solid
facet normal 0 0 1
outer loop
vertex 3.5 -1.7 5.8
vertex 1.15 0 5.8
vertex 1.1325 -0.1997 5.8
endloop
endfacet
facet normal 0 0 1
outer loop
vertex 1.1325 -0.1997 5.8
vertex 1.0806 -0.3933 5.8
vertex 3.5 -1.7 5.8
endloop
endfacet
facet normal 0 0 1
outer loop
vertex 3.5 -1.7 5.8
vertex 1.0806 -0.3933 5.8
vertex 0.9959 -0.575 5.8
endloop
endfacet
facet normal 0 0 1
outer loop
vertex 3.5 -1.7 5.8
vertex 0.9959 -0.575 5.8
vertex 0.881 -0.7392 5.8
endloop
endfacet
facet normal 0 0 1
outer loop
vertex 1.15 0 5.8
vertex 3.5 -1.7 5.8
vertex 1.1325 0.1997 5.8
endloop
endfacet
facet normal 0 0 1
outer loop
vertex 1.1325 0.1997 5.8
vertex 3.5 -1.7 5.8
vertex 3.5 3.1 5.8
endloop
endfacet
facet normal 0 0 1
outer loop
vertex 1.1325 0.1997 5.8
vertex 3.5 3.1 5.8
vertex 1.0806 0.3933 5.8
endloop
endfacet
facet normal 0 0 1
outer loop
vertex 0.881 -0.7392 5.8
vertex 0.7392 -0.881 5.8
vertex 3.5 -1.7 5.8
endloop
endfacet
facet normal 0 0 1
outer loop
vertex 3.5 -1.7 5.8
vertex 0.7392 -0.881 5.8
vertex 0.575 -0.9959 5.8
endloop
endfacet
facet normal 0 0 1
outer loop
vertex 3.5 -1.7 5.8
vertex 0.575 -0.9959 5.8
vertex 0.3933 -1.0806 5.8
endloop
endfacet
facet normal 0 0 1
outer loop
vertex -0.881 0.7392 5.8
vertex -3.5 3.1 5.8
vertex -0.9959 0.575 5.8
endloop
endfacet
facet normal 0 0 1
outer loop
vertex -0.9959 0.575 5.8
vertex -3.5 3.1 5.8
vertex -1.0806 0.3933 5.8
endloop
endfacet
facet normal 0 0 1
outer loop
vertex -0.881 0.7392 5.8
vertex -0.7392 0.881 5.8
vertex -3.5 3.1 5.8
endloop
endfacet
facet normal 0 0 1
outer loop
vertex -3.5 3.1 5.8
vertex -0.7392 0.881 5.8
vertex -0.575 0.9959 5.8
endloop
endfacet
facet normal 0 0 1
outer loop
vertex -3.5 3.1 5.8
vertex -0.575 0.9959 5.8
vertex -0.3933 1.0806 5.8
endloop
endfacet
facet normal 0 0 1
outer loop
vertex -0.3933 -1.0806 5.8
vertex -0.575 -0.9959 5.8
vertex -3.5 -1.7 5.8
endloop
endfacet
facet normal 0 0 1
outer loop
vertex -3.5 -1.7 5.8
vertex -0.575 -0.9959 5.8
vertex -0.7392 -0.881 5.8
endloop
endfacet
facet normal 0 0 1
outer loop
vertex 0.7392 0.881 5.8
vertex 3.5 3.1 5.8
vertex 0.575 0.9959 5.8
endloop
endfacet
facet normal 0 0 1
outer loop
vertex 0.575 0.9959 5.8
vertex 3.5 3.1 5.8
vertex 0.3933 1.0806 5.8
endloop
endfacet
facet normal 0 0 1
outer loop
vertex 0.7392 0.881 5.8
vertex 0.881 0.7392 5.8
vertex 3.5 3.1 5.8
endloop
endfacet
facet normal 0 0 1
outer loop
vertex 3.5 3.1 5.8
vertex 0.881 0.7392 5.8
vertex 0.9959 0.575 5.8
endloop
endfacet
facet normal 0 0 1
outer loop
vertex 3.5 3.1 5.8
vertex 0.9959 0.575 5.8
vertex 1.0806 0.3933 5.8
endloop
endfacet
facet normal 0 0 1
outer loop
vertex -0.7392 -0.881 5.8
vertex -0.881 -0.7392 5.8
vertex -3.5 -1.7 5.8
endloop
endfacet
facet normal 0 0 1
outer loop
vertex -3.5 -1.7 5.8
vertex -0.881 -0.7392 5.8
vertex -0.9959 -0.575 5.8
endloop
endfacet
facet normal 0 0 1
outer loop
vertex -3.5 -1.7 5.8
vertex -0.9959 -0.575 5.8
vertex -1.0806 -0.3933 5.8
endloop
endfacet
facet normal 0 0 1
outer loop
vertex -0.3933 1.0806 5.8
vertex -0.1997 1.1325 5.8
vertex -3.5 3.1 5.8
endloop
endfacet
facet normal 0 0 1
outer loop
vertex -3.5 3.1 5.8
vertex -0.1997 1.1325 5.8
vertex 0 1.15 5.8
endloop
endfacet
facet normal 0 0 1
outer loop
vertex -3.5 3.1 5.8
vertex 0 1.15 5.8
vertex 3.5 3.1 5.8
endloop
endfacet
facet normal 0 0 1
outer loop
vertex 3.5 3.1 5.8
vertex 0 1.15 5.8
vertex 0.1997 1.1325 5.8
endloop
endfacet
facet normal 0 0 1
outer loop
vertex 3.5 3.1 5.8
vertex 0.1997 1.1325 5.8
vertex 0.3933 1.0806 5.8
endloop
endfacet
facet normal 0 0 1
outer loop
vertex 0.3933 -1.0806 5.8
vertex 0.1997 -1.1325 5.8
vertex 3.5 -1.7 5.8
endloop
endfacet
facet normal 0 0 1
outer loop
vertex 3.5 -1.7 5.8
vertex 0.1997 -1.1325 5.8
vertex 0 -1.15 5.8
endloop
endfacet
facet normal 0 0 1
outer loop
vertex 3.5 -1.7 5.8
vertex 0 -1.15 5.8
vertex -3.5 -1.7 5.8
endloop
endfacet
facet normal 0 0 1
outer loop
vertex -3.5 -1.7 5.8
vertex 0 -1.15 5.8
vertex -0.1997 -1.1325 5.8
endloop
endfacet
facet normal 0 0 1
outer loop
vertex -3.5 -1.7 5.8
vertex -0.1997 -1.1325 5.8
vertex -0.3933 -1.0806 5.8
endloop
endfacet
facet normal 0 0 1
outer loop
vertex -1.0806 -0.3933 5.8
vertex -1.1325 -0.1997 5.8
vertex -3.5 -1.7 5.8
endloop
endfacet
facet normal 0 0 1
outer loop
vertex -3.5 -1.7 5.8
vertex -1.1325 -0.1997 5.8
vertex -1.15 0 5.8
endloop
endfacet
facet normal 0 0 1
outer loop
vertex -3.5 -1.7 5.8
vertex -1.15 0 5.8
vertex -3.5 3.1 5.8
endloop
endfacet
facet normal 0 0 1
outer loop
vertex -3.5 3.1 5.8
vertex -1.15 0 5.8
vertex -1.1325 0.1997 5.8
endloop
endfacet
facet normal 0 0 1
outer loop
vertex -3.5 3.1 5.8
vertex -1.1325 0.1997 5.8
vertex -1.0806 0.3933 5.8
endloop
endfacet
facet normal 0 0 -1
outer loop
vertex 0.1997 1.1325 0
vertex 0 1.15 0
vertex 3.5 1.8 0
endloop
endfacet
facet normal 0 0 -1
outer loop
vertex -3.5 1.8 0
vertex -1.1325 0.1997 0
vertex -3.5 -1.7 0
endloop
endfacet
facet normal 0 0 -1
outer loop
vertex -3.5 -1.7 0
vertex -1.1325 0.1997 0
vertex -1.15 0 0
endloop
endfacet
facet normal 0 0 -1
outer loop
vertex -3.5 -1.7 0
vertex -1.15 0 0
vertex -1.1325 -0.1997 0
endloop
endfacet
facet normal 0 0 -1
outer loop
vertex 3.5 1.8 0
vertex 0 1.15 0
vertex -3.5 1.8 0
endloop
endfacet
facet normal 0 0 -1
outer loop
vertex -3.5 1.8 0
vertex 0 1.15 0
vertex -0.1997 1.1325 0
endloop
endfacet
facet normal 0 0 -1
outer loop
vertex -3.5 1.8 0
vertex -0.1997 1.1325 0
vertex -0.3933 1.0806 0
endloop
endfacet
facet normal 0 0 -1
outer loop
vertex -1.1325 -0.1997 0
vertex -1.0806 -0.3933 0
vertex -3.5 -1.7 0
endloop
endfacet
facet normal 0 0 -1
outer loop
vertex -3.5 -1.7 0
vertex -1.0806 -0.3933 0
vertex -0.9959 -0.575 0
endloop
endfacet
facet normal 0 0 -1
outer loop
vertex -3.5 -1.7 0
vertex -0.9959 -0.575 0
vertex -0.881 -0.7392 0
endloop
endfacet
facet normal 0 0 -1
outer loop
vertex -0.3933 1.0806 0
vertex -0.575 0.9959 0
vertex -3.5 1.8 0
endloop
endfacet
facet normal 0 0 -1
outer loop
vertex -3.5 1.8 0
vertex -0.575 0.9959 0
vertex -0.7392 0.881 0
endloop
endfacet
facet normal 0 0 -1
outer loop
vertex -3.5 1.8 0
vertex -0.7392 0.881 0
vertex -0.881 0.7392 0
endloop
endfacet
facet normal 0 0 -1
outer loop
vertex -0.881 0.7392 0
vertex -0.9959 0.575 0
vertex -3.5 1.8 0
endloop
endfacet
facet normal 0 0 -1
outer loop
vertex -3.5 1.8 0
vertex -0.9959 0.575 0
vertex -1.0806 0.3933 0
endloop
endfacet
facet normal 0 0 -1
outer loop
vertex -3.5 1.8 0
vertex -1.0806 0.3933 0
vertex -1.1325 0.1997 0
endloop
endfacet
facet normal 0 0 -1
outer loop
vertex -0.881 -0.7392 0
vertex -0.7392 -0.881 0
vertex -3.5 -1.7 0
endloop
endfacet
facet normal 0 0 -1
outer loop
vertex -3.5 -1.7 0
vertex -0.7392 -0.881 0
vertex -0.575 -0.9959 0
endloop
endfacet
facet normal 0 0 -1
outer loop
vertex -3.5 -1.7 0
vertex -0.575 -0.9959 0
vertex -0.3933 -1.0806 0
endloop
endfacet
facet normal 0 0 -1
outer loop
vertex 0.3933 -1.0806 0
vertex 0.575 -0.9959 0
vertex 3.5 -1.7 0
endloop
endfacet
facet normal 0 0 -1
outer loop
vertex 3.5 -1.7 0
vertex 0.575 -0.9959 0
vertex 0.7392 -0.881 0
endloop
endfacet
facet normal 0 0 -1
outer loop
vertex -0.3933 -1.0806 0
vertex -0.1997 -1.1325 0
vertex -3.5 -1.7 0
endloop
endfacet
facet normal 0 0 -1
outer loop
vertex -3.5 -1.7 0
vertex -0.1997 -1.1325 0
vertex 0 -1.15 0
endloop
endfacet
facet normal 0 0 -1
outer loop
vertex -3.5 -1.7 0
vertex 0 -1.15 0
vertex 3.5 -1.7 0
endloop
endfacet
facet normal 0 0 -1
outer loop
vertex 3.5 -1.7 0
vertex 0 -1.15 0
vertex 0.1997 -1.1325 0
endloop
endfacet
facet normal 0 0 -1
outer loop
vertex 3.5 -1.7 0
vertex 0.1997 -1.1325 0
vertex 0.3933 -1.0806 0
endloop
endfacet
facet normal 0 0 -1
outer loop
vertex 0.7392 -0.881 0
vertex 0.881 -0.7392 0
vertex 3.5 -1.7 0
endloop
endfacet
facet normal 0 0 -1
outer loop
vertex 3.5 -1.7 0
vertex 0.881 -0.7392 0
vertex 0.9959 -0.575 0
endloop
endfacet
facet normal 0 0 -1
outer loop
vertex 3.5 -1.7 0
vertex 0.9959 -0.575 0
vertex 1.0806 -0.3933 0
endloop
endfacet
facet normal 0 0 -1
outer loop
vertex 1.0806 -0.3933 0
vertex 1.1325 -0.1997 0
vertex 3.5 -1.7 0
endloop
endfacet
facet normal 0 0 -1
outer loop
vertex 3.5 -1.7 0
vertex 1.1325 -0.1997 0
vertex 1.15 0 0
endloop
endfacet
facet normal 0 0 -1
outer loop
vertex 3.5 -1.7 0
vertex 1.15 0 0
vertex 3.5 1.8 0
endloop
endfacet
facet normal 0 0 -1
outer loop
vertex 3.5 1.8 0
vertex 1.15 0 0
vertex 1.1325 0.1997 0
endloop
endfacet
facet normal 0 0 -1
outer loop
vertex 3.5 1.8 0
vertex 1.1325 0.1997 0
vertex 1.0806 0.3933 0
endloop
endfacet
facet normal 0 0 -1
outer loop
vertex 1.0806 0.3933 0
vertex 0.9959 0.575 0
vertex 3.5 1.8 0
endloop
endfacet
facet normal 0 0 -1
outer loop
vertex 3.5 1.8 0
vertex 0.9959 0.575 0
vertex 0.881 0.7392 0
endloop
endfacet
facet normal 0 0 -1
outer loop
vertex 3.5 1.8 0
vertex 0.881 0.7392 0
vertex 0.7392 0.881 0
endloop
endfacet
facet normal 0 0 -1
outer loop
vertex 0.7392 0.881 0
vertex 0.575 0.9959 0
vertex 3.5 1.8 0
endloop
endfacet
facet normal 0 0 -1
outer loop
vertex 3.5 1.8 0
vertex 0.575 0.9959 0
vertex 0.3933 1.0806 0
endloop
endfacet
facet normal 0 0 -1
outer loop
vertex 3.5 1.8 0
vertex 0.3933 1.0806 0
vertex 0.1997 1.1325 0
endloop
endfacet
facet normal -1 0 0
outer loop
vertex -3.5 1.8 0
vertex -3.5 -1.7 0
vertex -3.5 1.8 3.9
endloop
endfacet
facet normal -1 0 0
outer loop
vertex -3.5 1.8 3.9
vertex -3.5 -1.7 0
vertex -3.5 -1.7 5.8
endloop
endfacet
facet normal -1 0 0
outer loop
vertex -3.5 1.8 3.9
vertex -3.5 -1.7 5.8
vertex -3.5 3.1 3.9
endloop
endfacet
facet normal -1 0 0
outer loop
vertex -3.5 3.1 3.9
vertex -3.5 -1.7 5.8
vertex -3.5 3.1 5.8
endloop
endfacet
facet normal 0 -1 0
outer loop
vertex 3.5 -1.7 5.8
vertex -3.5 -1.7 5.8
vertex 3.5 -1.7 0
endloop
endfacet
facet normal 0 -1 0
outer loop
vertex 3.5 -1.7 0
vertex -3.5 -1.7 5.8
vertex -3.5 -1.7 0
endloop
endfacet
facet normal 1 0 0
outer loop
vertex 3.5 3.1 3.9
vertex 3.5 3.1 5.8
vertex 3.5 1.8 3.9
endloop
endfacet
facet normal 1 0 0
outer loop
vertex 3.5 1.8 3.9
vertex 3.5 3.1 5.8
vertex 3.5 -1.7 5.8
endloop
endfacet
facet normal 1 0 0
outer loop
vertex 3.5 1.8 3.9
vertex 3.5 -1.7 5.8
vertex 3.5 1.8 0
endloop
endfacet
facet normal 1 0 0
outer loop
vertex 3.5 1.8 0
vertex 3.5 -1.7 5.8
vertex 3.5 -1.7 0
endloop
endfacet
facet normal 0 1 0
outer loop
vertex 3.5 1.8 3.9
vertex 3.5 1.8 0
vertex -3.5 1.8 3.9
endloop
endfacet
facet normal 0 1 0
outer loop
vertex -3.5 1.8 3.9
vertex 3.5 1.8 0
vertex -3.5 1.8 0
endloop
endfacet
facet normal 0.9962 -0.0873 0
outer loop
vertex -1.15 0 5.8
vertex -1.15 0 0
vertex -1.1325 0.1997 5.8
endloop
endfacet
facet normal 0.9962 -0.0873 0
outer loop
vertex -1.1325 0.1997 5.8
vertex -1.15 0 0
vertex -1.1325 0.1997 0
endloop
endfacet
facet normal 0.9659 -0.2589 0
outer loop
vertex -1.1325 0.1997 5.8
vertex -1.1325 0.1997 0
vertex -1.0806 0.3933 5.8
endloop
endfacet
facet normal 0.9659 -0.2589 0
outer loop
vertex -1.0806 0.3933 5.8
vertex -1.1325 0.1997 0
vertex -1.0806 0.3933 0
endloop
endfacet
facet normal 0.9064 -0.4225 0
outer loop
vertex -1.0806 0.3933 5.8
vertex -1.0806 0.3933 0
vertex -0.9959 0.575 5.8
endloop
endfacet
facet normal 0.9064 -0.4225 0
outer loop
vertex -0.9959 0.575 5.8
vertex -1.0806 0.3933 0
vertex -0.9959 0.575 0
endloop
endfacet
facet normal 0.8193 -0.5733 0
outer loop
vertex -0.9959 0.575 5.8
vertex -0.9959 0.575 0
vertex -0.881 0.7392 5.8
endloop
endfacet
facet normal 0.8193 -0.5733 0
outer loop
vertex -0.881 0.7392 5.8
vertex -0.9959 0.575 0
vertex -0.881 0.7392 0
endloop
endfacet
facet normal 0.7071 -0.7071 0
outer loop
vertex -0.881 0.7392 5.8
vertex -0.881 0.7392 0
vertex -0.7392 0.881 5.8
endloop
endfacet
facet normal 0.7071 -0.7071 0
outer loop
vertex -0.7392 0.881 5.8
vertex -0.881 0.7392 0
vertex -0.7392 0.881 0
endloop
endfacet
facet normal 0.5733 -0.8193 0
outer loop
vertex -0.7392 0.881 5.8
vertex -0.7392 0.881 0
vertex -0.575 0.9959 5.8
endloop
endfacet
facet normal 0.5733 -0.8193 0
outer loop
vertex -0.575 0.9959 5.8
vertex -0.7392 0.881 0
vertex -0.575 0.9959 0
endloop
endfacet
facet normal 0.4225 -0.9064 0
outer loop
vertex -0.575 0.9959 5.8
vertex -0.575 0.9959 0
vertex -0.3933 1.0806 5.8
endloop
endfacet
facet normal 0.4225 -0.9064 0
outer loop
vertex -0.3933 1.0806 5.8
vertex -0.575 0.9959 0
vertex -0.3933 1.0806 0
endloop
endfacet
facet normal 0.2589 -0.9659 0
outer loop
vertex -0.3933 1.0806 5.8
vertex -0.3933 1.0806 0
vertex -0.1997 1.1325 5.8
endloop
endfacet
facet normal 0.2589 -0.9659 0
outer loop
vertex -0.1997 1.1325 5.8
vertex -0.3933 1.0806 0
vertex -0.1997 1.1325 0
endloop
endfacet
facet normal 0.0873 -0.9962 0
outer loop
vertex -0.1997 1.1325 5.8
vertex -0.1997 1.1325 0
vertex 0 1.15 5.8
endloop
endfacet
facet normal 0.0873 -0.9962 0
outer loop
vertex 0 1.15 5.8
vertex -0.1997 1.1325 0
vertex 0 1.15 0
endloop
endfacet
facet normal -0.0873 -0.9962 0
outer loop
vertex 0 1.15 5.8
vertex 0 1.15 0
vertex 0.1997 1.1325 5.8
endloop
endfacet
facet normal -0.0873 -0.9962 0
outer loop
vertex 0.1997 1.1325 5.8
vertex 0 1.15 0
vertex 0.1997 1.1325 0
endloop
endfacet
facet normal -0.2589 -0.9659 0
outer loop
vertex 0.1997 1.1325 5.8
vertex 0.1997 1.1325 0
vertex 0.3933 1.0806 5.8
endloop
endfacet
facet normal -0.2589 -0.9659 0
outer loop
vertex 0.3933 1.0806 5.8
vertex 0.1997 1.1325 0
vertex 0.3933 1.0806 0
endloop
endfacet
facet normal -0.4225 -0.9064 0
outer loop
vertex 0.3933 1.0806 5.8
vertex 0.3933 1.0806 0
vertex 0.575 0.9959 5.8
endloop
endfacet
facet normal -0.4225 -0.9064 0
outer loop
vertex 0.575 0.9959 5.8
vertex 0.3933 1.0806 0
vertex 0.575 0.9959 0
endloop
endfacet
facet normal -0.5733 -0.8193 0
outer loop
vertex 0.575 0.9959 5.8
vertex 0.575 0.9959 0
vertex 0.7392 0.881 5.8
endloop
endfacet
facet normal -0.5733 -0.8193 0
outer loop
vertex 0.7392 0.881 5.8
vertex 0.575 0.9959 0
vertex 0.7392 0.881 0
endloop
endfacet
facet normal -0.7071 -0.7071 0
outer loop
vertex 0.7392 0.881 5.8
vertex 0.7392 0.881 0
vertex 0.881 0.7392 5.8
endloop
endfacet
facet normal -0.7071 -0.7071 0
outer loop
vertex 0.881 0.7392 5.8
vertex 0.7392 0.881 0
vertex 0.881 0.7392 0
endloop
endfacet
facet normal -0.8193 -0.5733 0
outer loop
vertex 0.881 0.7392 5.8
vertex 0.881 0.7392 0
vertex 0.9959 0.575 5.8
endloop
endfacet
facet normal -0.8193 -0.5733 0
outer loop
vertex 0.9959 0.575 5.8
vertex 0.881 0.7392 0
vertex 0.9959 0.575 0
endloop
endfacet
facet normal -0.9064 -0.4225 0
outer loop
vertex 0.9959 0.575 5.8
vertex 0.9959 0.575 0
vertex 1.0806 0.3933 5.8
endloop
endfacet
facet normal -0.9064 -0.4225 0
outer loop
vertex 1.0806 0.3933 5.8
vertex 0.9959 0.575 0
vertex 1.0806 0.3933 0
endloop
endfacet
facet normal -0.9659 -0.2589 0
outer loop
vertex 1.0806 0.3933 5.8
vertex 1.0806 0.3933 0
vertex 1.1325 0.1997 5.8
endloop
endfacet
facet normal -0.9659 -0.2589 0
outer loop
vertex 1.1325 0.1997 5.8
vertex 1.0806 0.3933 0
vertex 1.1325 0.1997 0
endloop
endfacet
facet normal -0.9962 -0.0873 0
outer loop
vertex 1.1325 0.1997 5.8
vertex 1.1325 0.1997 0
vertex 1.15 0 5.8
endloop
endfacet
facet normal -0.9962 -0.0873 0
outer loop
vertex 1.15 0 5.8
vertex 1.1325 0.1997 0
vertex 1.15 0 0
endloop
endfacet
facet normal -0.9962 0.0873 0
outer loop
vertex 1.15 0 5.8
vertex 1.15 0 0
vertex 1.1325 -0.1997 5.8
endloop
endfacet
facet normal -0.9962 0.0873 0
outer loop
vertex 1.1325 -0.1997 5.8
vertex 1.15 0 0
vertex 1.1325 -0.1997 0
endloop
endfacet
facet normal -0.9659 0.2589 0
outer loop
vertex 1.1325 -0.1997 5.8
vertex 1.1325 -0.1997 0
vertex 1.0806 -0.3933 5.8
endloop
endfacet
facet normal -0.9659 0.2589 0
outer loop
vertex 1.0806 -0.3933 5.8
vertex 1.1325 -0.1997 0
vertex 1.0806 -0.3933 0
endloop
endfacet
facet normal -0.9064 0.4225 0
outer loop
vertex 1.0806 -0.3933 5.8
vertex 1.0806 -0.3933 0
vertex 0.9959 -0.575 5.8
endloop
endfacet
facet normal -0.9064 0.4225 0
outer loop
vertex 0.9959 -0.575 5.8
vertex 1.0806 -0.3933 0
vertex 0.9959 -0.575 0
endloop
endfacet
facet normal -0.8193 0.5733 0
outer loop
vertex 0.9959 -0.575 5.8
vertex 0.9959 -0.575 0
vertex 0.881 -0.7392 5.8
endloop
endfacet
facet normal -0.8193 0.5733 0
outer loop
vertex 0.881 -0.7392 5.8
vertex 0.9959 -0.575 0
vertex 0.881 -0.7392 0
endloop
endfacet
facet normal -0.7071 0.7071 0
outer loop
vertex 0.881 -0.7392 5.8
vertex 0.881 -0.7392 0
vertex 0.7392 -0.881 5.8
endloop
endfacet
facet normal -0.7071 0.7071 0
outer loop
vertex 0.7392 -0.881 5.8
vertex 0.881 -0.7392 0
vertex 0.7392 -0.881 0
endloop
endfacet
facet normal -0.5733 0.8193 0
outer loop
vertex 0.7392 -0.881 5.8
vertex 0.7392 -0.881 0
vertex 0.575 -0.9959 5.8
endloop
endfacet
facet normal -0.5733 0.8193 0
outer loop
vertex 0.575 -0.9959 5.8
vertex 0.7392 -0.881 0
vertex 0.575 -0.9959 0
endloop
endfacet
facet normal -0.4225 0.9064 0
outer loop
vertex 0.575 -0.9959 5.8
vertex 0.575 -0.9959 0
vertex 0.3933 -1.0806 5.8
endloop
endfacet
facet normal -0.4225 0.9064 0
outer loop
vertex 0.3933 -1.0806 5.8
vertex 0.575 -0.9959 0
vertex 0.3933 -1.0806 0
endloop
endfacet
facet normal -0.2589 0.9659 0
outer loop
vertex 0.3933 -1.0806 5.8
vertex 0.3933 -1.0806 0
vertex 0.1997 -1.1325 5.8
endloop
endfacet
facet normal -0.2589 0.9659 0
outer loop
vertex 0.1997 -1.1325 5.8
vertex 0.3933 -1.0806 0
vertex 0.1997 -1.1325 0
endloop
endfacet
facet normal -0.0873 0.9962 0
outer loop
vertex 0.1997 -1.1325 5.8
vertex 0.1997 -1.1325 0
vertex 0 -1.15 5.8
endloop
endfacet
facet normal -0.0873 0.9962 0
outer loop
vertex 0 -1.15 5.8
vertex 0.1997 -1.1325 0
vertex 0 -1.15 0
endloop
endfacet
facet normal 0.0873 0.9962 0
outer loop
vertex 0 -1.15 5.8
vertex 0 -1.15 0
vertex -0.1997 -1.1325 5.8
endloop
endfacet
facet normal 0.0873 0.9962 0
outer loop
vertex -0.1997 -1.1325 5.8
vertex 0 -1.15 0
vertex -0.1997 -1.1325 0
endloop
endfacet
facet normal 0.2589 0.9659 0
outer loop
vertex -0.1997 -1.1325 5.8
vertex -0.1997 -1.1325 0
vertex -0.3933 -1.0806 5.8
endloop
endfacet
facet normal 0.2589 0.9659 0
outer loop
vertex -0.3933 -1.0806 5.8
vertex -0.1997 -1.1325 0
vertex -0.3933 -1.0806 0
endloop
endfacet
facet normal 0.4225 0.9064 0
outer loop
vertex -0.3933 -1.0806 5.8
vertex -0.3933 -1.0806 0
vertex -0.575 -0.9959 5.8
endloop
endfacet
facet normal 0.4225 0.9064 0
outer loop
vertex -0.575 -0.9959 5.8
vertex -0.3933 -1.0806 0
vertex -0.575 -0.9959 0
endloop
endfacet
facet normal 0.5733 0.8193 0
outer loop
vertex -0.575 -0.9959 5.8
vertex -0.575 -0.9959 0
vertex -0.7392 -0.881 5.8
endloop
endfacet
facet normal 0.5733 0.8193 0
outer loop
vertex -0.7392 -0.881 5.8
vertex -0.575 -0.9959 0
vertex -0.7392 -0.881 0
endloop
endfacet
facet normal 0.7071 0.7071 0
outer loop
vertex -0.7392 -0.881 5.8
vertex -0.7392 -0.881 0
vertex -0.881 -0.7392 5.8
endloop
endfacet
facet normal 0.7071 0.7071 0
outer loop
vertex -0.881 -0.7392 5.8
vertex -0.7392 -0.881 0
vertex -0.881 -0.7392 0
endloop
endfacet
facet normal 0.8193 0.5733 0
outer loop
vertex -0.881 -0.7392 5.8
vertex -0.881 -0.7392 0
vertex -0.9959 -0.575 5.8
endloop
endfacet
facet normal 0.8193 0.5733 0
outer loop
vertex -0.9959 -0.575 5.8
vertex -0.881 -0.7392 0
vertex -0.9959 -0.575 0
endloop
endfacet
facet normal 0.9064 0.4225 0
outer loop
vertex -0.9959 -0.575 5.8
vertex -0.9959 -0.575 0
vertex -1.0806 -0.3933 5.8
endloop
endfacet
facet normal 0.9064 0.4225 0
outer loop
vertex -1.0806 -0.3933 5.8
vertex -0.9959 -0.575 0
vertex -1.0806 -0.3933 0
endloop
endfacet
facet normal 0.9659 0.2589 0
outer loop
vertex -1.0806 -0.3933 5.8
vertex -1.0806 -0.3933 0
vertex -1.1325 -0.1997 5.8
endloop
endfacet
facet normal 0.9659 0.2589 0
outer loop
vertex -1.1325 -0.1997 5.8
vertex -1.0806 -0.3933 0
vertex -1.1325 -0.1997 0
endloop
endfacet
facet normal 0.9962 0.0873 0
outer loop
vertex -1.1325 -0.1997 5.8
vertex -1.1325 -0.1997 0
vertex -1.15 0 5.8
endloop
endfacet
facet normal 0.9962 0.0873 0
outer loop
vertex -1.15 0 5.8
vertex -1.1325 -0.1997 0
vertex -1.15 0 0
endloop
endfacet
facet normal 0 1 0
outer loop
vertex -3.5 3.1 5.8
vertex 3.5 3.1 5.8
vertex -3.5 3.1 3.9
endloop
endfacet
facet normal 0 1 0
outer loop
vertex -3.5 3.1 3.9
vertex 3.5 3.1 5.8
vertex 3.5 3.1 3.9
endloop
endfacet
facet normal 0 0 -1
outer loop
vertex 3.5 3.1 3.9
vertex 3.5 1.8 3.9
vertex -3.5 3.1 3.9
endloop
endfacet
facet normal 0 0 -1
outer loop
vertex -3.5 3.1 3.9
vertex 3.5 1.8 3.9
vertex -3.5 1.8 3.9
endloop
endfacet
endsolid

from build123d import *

# Parameters (mm, degrees)
M2_SCREW_CLIP_BODY_PROFILE_W       = 7
M2_SCREW_CLIP_BODY_PROFILE_H       = 3.5
M2_SCREW_CLIP_BODY_PROFILE_R       = 1.15
M2_SCREW_CLIP_BODY_DEPTH           = 5.8
BOARD_START                        = 3.9
BOARD_EDGE_RETAINING_TOE_PROFILE_W = 7
BOARD_EDGE_RETAINING_TOE_PROFILE_H = 1.3
BOARD_EDGE_RETAINING_TOE_DEPTH     = 1.9


with BuildPart() as part:
    # M2 screw clip body profile → M2 screw clip body (new body)
    with BuildSketch(Plane.XY):
        with Locations((0, 0.05)):
            Rectangle(M2_SCREW_CLIP_BODY_PROFILE_W, M2_SCREW_CLIP_BODY_PROFILE_H)
        Circle(M2_SCREW_CLIP_BODY_PROFILE_R, mode=Mode.SUBTRACT)
    extrude(amount=M2_SCREW_CLIP_BODY_DEPTH)

    # Board edge retaining toe profile → Board edge retaining toe (add)
    with BuildSketch(Plane.XY.offset(BOARD_START)):
        with Locations((0, 2.45)):
            Rectangle(BOARD_EDGE_RETAINING_TOE_PROFILE_W, BOARD_EDGE_RETAINING_TOE_PROFILE_H)
    extrude(amount=BOARD_EDGE_RETAINING_TOE_DEPTH)


solid = part.part
